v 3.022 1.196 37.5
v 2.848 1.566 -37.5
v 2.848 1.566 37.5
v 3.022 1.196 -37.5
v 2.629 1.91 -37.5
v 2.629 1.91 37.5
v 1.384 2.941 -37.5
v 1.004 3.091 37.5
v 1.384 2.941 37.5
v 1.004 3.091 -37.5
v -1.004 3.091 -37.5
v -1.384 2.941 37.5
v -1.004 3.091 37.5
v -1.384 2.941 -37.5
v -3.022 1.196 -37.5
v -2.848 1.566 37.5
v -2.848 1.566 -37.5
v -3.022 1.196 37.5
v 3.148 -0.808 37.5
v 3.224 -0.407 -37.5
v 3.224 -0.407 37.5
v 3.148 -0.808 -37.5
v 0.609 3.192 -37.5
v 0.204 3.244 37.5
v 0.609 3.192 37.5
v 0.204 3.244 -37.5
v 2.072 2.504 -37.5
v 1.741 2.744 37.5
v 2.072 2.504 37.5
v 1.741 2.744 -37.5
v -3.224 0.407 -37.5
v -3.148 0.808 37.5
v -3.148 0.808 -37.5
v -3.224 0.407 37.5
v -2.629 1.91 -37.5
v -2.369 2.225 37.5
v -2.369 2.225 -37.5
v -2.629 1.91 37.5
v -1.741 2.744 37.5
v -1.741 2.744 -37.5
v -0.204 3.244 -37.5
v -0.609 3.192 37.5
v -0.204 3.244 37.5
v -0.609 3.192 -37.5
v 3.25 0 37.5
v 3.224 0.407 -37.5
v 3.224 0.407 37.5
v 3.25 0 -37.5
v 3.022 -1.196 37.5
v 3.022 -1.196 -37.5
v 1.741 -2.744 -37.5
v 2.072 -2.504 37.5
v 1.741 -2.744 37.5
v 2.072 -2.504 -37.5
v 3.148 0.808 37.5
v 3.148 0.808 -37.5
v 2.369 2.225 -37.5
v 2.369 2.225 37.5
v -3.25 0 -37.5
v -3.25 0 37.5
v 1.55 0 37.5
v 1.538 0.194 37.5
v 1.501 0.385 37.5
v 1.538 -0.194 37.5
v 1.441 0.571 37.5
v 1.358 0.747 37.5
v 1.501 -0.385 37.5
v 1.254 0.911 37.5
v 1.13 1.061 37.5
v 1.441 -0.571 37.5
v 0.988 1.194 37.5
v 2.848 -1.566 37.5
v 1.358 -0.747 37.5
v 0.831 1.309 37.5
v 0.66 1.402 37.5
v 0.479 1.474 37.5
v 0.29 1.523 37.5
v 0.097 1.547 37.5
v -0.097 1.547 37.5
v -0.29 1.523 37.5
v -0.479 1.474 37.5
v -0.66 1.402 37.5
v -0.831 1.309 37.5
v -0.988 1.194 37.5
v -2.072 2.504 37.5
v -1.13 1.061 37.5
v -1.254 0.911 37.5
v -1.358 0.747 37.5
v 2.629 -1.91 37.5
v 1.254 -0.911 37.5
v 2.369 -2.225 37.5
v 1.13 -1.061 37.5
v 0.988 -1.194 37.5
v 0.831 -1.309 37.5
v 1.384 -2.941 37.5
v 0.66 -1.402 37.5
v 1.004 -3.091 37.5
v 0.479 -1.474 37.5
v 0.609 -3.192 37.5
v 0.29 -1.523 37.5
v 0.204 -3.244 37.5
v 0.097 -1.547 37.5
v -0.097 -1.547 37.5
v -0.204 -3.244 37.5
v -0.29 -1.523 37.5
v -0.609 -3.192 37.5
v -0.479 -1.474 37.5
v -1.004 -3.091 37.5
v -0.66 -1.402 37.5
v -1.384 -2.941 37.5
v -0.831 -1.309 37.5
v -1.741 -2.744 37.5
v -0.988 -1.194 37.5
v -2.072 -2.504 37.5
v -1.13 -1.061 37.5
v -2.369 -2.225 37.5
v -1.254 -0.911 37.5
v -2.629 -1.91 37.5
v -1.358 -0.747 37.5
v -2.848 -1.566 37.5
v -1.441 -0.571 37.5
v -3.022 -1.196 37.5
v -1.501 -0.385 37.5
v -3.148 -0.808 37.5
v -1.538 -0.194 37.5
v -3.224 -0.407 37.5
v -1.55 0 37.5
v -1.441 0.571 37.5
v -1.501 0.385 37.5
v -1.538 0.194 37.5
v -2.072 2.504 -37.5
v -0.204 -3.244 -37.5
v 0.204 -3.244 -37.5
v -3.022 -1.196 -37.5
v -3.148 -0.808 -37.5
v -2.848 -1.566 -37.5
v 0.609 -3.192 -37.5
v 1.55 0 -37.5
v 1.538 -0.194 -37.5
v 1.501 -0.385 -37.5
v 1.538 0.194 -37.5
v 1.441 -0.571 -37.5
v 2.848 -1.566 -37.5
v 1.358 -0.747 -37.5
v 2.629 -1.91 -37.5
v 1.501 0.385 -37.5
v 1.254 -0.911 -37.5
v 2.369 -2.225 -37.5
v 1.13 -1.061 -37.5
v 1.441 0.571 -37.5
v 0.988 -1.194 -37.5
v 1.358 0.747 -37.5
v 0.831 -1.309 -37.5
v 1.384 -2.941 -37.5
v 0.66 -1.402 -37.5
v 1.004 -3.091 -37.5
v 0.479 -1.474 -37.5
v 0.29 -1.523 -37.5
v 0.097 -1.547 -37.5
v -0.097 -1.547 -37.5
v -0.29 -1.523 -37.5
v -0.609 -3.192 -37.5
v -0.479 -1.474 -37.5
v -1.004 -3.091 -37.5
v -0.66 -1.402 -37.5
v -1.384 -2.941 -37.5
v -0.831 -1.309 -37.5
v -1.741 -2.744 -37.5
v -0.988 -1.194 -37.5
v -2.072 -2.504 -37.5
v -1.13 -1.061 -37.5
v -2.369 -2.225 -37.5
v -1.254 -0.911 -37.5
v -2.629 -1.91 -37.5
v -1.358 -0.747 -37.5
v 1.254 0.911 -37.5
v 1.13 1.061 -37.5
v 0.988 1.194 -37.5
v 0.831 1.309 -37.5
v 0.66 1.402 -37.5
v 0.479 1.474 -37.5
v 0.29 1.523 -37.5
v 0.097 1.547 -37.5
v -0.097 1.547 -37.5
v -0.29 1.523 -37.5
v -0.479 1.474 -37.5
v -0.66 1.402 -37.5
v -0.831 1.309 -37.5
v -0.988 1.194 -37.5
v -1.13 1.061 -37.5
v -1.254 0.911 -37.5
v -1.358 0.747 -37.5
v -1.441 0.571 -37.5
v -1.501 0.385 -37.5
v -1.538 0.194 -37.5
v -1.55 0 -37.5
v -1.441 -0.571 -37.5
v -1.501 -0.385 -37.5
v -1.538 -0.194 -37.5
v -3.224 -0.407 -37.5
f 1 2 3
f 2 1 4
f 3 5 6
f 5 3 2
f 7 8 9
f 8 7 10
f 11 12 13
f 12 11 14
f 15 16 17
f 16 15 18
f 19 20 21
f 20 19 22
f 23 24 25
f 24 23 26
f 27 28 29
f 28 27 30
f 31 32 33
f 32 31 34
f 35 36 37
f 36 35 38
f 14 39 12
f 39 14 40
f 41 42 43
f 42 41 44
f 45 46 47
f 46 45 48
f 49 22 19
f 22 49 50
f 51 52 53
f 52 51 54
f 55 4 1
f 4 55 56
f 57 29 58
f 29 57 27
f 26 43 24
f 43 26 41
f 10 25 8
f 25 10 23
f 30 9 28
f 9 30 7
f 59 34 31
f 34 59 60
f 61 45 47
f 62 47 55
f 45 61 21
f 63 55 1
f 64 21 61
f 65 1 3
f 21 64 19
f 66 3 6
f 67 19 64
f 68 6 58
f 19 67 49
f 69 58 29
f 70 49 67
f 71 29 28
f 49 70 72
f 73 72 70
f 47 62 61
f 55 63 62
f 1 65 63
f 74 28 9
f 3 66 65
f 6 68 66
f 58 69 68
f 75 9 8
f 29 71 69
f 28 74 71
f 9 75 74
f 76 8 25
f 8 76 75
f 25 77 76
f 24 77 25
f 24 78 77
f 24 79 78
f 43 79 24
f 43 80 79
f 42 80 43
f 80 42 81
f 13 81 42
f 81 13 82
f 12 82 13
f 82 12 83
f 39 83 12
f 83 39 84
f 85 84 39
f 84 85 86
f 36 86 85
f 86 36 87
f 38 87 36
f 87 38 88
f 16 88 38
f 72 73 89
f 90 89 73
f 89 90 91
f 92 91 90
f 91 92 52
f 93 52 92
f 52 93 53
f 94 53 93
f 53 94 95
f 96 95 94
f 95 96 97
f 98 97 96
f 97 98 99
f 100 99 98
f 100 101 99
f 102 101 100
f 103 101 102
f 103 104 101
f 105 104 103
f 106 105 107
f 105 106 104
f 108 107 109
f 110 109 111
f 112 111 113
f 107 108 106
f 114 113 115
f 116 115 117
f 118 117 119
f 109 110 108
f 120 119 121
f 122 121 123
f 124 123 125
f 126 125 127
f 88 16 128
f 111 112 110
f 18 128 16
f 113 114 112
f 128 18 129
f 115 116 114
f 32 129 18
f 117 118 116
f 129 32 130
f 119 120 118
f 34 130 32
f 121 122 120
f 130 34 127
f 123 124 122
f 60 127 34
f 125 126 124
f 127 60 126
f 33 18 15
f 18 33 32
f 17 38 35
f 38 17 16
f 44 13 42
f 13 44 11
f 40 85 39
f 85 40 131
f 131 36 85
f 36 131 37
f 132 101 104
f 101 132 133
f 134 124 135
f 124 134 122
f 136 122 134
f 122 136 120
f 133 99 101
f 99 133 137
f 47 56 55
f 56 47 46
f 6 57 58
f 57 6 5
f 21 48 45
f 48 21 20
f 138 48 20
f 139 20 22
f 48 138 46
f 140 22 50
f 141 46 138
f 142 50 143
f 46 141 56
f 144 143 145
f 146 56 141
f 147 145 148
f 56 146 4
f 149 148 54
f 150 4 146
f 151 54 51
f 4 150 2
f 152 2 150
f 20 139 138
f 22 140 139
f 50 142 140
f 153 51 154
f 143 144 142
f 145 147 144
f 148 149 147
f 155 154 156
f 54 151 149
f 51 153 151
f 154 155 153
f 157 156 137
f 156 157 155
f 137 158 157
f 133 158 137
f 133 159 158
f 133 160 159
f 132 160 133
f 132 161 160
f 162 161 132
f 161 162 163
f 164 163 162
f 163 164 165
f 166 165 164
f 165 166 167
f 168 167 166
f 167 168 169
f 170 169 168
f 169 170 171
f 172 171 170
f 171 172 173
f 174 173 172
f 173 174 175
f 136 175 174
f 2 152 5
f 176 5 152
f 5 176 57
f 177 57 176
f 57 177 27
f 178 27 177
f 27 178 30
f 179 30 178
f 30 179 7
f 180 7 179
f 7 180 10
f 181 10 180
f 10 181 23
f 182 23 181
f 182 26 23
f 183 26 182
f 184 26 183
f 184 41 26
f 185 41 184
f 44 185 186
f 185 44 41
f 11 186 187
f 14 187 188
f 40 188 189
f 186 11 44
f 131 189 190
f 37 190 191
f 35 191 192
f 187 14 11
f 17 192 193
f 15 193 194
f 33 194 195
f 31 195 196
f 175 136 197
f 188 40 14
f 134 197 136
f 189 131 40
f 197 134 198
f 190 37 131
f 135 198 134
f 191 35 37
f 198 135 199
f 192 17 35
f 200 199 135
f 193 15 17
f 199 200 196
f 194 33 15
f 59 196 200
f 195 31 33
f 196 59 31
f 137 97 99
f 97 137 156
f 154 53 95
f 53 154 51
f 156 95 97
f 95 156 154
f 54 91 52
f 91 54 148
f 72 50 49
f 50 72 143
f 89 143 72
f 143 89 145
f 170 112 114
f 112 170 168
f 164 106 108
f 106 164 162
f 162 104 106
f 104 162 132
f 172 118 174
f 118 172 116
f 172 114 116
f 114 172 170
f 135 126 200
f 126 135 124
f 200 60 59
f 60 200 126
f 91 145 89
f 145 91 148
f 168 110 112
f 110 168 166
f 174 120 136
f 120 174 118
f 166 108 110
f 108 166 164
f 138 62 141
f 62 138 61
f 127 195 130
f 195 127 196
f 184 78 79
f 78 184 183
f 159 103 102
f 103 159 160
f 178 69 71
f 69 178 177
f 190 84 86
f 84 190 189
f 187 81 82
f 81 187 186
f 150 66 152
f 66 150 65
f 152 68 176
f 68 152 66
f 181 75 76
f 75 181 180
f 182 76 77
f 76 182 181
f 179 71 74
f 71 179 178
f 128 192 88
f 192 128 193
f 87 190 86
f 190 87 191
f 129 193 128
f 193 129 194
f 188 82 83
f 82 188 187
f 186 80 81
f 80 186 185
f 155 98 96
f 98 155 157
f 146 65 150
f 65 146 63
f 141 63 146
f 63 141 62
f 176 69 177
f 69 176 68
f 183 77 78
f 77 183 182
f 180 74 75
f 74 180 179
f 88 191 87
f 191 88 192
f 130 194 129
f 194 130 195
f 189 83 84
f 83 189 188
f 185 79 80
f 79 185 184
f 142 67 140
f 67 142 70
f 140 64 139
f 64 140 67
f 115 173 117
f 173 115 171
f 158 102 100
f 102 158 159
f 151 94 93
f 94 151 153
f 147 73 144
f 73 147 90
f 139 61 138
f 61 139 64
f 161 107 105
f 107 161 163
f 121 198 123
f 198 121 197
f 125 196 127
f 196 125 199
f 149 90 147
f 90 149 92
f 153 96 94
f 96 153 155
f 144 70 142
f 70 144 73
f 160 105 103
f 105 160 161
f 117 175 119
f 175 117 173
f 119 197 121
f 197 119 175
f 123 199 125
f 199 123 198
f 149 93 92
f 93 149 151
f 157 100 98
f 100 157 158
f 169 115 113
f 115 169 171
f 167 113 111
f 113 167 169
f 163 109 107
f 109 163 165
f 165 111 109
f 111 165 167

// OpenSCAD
$fn = 50;


difference() {
	union() {
		translate(v = [0, 0, -37.5000000000]) {
			cylinder(h = 75, r = 3.2500000000);
		}
	}
	union() {
		translate(v = [0, 0, -100.0000000000]) {
			cylinder(h = 200, r = 1.5500000000);
		}
	}
}
